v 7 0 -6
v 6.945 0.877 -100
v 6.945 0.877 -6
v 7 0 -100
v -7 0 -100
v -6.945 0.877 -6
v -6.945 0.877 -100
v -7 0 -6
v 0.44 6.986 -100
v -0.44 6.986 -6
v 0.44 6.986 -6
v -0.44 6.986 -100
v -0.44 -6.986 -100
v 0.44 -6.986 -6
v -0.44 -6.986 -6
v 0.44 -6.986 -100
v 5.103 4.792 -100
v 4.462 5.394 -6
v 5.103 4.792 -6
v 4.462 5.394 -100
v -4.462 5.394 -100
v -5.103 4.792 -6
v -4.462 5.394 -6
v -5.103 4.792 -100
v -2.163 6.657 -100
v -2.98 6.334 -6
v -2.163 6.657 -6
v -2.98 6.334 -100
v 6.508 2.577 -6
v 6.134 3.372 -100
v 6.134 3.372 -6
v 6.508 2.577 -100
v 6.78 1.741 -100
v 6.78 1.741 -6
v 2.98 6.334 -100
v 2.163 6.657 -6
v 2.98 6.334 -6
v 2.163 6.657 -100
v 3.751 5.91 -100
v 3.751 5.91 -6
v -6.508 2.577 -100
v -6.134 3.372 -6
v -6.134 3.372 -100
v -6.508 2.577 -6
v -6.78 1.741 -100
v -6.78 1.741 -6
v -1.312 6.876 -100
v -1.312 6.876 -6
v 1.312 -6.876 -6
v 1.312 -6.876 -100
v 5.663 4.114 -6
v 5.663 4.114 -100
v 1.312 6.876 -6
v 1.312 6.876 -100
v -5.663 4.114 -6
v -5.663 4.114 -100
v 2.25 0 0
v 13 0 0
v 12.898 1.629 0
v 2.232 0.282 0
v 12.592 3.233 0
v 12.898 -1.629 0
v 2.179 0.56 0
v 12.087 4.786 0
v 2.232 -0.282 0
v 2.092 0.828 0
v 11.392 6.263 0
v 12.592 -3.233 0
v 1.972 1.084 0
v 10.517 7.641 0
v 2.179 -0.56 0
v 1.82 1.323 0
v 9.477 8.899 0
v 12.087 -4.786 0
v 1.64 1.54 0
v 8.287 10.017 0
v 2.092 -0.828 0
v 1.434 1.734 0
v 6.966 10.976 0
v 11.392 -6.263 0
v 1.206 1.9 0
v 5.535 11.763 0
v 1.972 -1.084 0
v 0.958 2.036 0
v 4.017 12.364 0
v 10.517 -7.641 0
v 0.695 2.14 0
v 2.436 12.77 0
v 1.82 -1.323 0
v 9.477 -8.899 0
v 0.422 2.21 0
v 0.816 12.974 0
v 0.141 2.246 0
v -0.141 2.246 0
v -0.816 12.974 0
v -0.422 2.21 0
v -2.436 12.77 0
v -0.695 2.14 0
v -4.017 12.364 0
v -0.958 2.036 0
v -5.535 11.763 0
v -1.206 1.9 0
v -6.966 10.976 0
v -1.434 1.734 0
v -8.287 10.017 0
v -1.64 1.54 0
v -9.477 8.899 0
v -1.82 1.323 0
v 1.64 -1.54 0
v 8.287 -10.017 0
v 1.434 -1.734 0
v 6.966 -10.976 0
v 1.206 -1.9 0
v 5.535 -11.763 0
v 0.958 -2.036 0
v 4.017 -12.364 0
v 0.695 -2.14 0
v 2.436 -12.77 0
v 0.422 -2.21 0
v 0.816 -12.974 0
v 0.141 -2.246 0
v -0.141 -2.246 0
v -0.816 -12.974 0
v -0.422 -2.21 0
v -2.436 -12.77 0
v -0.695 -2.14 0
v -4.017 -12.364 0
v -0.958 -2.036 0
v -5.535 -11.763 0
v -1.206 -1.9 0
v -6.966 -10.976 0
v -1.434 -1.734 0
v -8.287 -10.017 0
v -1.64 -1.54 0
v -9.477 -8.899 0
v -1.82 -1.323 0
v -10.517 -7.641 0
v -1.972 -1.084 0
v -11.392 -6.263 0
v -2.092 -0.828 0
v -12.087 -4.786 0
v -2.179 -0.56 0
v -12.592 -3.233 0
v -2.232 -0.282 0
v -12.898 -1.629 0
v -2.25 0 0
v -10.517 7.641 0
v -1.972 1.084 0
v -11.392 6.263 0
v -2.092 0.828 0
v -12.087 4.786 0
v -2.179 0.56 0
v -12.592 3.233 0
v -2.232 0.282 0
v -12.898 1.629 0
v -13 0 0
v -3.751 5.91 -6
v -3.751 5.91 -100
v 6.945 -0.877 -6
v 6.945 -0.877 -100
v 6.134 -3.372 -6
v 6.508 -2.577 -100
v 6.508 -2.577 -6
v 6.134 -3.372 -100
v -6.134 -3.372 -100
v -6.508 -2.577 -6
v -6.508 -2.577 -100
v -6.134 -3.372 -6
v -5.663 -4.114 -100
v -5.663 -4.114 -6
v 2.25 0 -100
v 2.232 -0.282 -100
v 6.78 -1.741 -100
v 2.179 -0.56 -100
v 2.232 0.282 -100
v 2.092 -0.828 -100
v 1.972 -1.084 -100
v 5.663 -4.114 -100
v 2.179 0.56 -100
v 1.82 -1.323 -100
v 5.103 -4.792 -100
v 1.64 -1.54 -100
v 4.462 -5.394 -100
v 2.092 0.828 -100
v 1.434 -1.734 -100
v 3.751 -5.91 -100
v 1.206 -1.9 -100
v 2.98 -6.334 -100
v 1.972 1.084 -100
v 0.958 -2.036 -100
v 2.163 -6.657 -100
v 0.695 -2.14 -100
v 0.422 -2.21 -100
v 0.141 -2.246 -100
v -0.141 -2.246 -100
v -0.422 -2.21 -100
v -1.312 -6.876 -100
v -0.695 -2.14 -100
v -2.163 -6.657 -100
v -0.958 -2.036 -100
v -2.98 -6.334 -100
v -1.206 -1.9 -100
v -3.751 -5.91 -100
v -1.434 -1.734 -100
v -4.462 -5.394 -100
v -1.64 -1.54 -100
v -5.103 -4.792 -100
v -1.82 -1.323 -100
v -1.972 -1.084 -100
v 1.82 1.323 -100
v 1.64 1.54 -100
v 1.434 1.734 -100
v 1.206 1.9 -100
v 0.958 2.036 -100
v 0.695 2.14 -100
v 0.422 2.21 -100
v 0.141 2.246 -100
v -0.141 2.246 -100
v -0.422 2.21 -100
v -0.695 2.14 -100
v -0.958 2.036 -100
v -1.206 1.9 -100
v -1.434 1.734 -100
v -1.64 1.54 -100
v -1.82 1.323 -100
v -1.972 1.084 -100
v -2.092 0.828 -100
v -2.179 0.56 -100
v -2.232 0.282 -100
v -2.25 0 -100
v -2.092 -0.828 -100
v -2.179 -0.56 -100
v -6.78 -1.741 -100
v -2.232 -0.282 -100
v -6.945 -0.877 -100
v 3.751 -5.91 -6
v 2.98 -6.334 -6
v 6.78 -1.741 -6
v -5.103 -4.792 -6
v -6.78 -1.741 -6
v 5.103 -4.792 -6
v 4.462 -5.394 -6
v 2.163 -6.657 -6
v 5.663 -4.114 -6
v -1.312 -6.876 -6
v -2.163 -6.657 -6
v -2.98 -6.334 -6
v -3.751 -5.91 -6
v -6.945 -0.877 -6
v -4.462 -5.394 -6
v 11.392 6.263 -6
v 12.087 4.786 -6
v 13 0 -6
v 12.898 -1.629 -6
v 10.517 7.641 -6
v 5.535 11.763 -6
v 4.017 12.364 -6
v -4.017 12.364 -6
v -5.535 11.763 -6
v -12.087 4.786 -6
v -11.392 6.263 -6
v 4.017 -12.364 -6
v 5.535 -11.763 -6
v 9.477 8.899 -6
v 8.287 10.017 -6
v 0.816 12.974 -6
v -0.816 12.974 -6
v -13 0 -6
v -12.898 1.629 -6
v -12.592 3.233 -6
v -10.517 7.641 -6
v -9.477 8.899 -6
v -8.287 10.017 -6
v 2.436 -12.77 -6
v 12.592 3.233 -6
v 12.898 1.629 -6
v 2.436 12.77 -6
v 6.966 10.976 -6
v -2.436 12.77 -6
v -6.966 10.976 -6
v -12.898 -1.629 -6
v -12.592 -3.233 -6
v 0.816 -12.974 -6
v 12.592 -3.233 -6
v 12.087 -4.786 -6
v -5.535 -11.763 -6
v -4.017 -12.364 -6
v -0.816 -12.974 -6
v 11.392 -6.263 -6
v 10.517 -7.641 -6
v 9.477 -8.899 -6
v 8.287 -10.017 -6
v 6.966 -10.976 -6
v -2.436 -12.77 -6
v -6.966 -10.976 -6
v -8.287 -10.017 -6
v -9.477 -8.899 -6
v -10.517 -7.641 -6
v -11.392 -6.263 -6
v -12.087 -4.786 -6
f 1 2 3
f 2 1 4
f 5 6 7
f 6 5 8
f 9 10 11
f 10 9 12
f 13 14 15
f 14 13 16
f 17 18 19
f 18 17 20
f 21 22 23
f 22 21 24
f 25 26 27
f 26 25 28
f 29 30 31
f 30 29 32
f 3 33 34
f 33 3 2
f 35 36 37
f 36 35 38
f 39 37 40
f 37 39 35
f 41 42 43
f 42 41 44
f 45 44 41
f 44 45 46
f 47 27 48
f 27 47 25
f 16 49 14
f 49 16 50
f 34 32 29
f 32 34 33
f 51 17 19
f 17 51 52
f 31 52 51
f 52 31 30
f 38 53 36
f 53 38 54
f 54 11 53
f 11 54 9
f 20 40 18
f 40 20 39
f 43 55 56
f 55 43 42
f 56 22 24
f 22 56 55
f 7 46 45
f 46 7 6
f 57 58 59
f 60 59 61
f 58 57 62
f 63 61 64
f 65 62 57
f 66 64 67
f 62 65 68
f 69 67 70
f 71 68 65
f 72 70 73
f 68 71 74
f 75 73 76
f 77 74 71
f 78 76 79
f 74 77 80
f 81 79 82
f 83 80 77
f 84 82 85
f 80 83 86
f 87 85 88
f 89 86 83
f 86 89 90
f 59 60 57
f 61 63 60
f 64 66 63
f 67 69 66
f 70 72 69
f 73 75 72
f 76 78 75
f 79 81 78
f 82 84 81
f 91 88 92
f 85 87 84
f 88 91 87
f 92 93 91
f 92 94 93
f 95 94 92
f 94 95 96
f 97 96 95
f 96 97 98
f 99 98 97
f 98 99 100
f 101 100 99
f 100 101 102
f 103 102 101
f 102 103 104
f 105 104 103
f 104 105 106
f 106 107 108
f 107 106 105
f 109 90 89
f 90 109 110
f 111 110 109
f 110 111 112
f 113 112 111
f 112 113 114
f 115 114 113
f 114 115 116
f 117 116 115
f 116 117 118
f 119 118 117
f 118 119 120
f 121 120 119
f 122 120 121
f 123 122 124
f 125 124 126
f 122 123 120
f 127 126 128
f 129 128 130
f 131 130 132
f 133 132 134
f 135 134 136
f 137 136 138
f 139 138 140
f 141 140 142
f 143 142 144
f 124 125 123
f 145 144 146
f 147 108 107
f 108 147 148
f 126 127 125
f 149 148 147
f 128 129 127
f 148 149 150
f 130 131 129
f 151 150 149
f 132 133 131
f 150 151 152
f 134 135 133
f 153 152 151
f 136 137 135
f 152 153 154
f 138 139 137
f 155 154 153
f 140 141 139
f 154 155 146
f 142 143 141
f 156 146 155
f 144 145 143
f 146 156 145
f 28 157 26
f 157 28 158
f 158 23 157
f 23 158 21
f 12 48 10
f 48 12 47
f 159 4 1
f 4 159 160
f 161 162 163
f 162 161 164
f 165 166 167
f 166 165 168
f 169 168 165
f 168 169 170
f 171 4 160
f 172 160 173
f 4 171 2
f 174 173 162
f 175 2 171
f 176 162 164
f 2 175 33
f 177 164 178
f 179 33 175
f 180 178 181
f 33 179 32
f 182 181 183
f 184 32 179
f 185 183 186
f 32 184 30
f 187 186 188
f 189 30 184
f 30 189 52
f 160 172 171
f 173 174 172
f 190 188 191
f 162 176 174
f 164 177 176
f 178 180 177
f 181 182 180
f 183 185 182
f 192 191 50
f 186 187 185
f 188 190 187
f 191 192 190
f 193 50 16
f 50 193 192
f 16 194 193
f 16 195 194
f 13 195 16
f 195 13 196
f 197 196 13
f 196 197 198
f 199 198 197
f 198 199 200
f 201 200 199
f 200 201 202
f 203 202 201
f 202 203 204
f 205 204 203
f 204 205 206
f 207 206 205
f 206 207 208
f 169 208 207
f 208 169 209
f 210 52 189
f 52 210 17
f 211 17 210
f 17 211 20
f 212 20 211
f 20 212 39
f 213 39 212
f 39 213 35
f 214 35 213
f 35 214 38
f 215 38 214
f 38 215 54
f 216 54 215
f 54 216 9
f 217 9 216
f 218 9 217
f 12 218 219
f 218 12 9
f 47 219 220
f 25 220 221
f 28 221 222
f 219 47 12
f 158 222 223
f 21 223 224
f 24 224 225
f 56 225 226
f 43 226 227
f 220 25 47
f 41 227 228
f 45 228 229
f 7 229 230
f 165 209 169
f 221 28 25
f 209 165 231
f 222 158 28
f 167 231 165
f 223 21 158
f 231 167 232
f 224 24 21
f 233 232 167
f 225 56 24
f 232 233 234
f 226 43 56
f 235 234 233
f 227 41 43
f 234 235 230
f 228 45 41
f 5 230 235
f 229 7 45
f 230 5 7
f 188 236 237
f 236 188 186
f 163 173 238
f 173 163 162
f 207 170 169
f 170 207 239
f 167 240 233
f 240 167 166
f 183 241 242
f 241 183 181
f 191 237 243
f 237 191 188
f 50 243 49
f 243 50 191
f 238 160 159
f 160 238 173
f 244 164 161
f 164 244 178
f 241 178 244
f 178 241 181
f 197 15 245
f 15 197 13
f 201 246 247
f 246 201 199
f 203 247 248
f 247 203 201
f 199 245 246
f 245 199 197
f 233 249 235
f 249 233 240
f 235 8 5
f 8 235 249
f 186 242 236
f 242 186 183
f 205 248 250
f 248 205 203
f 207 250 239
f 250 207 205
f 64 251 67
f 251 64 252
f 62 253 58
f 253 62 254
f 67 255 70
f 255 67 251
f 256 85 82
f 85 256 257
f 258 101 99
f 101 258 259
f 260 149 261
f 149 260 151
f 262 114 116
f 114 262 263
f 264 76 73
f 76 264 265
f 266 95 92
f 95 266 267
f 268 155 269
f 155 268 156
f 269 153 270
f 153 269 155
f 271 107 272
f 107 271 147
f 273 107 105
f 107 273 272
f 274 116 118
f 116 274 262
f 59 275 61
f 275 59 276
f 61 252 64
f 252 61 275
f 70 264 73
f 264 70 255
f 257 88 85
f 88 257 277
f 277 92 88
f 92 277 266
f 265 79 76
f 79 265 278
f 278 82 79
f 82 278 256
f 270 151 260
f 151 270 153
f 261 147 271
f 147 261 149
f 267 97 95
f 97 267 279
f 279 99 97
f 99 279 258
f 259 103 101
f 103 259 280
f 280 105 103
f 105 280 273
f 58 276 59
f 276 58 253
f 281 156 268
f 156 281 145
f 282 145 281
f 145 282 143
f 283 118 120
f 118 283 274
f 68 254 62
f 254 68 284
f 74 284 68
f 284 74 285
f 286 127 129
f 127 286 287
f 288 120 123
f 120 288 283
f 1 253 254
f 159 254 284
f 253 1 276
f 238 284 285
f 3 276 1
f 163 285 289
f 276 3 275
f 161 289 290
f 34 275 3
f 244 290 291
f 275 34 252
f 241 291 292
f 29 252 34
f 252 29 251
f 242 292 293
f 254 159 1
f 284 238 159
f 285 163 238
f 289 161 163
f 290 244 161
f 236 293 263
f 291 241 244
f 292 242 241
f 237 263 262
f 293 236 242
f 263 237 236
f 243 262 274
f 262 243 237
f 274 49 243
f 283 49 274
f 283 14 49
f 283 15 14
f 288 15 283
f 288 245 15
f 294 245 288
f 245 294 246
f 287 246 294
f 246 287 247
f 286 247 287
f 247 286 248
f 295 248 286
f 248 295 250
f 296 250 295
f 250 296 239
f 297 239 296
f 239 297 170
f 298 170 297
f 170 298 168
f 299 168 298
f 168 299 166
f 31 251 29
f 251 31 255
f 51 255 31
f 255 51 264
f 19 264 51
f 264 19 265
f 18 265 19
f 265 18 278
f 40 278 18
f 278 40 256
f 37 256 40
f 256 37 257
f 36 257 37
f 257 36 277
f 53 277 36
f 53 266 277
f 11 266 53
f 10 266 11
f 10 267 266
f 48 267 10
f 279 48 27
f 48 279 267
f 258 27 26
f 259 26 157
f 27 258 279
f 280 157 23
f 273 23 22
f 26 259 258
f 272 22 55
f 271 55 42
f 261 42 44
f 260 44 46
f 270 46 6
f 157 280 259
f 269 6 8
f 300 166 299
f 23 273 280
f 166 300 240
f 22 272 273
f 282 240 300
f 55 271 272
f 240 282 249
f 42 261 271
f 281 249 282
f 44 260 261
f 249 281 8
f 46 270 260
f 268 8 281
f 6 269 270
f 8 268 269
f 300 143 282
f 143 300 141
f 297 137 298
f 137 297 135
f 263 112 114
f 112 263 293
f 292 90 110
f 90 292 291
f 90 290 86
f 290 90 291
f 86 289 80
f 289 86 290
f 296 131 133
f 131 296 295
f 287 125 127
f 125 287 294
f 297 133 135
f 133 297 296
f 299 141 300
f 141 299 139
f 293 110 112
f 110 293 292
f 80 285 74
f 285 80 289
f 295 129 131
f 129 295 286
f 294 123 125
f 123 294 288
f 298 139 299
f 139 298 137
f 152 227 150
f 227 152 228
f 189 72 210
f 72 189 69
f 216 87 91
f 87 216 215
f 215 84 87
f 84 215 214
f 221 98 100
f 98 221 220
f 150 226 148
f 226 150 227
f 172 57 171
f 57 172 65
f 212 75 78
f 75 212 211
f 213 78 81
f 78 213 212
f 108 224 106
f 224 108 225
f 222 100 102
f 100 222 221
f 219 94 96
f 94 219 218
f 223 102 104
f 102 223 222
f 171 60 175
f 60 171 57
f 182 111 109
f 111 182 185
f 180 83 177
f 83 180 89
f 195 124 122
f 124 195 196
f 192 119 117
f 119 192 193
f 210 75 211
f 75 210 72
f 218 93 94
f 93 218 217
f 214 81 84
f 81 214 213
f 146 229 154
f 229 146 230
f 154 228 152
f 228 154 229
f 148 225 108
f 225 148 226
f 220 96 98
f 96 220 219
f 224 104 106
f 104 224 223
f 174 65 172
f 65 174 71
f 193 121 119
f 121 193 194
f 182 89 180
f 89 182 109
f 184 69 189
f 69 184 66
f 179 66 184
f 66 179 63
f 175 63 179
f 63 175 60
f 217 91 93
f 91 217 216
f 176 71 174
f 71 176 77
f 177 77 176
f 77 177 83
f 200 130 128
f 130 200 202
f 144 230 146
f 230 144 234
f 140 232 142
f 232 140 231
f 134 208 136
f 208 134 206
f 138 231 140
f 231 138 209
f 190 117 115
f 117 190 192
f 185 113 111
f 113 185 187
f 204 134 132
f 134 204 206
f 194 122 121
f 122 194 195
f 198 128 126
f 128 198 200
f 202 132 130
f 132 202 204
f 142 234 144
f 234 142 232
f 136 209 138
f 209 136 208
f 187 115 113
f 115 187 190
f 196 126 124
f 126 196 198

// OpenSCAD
$fn = 50;


difference() {
	union() {
		translate(v = [0, 0, -100.0000000000]) {
			cylinder(h = 100, r = 7.0000000000);
		}
		translate(v = [0, 0, -6.0000000000]) {
			cylinder(h = 6, r = 13.0000000000);
		}
	}
	union() {
		#translate(v = [0, 0, -100]) {
			cylinder(h = 100, r = 2.2500000000);
		}
	}
}
